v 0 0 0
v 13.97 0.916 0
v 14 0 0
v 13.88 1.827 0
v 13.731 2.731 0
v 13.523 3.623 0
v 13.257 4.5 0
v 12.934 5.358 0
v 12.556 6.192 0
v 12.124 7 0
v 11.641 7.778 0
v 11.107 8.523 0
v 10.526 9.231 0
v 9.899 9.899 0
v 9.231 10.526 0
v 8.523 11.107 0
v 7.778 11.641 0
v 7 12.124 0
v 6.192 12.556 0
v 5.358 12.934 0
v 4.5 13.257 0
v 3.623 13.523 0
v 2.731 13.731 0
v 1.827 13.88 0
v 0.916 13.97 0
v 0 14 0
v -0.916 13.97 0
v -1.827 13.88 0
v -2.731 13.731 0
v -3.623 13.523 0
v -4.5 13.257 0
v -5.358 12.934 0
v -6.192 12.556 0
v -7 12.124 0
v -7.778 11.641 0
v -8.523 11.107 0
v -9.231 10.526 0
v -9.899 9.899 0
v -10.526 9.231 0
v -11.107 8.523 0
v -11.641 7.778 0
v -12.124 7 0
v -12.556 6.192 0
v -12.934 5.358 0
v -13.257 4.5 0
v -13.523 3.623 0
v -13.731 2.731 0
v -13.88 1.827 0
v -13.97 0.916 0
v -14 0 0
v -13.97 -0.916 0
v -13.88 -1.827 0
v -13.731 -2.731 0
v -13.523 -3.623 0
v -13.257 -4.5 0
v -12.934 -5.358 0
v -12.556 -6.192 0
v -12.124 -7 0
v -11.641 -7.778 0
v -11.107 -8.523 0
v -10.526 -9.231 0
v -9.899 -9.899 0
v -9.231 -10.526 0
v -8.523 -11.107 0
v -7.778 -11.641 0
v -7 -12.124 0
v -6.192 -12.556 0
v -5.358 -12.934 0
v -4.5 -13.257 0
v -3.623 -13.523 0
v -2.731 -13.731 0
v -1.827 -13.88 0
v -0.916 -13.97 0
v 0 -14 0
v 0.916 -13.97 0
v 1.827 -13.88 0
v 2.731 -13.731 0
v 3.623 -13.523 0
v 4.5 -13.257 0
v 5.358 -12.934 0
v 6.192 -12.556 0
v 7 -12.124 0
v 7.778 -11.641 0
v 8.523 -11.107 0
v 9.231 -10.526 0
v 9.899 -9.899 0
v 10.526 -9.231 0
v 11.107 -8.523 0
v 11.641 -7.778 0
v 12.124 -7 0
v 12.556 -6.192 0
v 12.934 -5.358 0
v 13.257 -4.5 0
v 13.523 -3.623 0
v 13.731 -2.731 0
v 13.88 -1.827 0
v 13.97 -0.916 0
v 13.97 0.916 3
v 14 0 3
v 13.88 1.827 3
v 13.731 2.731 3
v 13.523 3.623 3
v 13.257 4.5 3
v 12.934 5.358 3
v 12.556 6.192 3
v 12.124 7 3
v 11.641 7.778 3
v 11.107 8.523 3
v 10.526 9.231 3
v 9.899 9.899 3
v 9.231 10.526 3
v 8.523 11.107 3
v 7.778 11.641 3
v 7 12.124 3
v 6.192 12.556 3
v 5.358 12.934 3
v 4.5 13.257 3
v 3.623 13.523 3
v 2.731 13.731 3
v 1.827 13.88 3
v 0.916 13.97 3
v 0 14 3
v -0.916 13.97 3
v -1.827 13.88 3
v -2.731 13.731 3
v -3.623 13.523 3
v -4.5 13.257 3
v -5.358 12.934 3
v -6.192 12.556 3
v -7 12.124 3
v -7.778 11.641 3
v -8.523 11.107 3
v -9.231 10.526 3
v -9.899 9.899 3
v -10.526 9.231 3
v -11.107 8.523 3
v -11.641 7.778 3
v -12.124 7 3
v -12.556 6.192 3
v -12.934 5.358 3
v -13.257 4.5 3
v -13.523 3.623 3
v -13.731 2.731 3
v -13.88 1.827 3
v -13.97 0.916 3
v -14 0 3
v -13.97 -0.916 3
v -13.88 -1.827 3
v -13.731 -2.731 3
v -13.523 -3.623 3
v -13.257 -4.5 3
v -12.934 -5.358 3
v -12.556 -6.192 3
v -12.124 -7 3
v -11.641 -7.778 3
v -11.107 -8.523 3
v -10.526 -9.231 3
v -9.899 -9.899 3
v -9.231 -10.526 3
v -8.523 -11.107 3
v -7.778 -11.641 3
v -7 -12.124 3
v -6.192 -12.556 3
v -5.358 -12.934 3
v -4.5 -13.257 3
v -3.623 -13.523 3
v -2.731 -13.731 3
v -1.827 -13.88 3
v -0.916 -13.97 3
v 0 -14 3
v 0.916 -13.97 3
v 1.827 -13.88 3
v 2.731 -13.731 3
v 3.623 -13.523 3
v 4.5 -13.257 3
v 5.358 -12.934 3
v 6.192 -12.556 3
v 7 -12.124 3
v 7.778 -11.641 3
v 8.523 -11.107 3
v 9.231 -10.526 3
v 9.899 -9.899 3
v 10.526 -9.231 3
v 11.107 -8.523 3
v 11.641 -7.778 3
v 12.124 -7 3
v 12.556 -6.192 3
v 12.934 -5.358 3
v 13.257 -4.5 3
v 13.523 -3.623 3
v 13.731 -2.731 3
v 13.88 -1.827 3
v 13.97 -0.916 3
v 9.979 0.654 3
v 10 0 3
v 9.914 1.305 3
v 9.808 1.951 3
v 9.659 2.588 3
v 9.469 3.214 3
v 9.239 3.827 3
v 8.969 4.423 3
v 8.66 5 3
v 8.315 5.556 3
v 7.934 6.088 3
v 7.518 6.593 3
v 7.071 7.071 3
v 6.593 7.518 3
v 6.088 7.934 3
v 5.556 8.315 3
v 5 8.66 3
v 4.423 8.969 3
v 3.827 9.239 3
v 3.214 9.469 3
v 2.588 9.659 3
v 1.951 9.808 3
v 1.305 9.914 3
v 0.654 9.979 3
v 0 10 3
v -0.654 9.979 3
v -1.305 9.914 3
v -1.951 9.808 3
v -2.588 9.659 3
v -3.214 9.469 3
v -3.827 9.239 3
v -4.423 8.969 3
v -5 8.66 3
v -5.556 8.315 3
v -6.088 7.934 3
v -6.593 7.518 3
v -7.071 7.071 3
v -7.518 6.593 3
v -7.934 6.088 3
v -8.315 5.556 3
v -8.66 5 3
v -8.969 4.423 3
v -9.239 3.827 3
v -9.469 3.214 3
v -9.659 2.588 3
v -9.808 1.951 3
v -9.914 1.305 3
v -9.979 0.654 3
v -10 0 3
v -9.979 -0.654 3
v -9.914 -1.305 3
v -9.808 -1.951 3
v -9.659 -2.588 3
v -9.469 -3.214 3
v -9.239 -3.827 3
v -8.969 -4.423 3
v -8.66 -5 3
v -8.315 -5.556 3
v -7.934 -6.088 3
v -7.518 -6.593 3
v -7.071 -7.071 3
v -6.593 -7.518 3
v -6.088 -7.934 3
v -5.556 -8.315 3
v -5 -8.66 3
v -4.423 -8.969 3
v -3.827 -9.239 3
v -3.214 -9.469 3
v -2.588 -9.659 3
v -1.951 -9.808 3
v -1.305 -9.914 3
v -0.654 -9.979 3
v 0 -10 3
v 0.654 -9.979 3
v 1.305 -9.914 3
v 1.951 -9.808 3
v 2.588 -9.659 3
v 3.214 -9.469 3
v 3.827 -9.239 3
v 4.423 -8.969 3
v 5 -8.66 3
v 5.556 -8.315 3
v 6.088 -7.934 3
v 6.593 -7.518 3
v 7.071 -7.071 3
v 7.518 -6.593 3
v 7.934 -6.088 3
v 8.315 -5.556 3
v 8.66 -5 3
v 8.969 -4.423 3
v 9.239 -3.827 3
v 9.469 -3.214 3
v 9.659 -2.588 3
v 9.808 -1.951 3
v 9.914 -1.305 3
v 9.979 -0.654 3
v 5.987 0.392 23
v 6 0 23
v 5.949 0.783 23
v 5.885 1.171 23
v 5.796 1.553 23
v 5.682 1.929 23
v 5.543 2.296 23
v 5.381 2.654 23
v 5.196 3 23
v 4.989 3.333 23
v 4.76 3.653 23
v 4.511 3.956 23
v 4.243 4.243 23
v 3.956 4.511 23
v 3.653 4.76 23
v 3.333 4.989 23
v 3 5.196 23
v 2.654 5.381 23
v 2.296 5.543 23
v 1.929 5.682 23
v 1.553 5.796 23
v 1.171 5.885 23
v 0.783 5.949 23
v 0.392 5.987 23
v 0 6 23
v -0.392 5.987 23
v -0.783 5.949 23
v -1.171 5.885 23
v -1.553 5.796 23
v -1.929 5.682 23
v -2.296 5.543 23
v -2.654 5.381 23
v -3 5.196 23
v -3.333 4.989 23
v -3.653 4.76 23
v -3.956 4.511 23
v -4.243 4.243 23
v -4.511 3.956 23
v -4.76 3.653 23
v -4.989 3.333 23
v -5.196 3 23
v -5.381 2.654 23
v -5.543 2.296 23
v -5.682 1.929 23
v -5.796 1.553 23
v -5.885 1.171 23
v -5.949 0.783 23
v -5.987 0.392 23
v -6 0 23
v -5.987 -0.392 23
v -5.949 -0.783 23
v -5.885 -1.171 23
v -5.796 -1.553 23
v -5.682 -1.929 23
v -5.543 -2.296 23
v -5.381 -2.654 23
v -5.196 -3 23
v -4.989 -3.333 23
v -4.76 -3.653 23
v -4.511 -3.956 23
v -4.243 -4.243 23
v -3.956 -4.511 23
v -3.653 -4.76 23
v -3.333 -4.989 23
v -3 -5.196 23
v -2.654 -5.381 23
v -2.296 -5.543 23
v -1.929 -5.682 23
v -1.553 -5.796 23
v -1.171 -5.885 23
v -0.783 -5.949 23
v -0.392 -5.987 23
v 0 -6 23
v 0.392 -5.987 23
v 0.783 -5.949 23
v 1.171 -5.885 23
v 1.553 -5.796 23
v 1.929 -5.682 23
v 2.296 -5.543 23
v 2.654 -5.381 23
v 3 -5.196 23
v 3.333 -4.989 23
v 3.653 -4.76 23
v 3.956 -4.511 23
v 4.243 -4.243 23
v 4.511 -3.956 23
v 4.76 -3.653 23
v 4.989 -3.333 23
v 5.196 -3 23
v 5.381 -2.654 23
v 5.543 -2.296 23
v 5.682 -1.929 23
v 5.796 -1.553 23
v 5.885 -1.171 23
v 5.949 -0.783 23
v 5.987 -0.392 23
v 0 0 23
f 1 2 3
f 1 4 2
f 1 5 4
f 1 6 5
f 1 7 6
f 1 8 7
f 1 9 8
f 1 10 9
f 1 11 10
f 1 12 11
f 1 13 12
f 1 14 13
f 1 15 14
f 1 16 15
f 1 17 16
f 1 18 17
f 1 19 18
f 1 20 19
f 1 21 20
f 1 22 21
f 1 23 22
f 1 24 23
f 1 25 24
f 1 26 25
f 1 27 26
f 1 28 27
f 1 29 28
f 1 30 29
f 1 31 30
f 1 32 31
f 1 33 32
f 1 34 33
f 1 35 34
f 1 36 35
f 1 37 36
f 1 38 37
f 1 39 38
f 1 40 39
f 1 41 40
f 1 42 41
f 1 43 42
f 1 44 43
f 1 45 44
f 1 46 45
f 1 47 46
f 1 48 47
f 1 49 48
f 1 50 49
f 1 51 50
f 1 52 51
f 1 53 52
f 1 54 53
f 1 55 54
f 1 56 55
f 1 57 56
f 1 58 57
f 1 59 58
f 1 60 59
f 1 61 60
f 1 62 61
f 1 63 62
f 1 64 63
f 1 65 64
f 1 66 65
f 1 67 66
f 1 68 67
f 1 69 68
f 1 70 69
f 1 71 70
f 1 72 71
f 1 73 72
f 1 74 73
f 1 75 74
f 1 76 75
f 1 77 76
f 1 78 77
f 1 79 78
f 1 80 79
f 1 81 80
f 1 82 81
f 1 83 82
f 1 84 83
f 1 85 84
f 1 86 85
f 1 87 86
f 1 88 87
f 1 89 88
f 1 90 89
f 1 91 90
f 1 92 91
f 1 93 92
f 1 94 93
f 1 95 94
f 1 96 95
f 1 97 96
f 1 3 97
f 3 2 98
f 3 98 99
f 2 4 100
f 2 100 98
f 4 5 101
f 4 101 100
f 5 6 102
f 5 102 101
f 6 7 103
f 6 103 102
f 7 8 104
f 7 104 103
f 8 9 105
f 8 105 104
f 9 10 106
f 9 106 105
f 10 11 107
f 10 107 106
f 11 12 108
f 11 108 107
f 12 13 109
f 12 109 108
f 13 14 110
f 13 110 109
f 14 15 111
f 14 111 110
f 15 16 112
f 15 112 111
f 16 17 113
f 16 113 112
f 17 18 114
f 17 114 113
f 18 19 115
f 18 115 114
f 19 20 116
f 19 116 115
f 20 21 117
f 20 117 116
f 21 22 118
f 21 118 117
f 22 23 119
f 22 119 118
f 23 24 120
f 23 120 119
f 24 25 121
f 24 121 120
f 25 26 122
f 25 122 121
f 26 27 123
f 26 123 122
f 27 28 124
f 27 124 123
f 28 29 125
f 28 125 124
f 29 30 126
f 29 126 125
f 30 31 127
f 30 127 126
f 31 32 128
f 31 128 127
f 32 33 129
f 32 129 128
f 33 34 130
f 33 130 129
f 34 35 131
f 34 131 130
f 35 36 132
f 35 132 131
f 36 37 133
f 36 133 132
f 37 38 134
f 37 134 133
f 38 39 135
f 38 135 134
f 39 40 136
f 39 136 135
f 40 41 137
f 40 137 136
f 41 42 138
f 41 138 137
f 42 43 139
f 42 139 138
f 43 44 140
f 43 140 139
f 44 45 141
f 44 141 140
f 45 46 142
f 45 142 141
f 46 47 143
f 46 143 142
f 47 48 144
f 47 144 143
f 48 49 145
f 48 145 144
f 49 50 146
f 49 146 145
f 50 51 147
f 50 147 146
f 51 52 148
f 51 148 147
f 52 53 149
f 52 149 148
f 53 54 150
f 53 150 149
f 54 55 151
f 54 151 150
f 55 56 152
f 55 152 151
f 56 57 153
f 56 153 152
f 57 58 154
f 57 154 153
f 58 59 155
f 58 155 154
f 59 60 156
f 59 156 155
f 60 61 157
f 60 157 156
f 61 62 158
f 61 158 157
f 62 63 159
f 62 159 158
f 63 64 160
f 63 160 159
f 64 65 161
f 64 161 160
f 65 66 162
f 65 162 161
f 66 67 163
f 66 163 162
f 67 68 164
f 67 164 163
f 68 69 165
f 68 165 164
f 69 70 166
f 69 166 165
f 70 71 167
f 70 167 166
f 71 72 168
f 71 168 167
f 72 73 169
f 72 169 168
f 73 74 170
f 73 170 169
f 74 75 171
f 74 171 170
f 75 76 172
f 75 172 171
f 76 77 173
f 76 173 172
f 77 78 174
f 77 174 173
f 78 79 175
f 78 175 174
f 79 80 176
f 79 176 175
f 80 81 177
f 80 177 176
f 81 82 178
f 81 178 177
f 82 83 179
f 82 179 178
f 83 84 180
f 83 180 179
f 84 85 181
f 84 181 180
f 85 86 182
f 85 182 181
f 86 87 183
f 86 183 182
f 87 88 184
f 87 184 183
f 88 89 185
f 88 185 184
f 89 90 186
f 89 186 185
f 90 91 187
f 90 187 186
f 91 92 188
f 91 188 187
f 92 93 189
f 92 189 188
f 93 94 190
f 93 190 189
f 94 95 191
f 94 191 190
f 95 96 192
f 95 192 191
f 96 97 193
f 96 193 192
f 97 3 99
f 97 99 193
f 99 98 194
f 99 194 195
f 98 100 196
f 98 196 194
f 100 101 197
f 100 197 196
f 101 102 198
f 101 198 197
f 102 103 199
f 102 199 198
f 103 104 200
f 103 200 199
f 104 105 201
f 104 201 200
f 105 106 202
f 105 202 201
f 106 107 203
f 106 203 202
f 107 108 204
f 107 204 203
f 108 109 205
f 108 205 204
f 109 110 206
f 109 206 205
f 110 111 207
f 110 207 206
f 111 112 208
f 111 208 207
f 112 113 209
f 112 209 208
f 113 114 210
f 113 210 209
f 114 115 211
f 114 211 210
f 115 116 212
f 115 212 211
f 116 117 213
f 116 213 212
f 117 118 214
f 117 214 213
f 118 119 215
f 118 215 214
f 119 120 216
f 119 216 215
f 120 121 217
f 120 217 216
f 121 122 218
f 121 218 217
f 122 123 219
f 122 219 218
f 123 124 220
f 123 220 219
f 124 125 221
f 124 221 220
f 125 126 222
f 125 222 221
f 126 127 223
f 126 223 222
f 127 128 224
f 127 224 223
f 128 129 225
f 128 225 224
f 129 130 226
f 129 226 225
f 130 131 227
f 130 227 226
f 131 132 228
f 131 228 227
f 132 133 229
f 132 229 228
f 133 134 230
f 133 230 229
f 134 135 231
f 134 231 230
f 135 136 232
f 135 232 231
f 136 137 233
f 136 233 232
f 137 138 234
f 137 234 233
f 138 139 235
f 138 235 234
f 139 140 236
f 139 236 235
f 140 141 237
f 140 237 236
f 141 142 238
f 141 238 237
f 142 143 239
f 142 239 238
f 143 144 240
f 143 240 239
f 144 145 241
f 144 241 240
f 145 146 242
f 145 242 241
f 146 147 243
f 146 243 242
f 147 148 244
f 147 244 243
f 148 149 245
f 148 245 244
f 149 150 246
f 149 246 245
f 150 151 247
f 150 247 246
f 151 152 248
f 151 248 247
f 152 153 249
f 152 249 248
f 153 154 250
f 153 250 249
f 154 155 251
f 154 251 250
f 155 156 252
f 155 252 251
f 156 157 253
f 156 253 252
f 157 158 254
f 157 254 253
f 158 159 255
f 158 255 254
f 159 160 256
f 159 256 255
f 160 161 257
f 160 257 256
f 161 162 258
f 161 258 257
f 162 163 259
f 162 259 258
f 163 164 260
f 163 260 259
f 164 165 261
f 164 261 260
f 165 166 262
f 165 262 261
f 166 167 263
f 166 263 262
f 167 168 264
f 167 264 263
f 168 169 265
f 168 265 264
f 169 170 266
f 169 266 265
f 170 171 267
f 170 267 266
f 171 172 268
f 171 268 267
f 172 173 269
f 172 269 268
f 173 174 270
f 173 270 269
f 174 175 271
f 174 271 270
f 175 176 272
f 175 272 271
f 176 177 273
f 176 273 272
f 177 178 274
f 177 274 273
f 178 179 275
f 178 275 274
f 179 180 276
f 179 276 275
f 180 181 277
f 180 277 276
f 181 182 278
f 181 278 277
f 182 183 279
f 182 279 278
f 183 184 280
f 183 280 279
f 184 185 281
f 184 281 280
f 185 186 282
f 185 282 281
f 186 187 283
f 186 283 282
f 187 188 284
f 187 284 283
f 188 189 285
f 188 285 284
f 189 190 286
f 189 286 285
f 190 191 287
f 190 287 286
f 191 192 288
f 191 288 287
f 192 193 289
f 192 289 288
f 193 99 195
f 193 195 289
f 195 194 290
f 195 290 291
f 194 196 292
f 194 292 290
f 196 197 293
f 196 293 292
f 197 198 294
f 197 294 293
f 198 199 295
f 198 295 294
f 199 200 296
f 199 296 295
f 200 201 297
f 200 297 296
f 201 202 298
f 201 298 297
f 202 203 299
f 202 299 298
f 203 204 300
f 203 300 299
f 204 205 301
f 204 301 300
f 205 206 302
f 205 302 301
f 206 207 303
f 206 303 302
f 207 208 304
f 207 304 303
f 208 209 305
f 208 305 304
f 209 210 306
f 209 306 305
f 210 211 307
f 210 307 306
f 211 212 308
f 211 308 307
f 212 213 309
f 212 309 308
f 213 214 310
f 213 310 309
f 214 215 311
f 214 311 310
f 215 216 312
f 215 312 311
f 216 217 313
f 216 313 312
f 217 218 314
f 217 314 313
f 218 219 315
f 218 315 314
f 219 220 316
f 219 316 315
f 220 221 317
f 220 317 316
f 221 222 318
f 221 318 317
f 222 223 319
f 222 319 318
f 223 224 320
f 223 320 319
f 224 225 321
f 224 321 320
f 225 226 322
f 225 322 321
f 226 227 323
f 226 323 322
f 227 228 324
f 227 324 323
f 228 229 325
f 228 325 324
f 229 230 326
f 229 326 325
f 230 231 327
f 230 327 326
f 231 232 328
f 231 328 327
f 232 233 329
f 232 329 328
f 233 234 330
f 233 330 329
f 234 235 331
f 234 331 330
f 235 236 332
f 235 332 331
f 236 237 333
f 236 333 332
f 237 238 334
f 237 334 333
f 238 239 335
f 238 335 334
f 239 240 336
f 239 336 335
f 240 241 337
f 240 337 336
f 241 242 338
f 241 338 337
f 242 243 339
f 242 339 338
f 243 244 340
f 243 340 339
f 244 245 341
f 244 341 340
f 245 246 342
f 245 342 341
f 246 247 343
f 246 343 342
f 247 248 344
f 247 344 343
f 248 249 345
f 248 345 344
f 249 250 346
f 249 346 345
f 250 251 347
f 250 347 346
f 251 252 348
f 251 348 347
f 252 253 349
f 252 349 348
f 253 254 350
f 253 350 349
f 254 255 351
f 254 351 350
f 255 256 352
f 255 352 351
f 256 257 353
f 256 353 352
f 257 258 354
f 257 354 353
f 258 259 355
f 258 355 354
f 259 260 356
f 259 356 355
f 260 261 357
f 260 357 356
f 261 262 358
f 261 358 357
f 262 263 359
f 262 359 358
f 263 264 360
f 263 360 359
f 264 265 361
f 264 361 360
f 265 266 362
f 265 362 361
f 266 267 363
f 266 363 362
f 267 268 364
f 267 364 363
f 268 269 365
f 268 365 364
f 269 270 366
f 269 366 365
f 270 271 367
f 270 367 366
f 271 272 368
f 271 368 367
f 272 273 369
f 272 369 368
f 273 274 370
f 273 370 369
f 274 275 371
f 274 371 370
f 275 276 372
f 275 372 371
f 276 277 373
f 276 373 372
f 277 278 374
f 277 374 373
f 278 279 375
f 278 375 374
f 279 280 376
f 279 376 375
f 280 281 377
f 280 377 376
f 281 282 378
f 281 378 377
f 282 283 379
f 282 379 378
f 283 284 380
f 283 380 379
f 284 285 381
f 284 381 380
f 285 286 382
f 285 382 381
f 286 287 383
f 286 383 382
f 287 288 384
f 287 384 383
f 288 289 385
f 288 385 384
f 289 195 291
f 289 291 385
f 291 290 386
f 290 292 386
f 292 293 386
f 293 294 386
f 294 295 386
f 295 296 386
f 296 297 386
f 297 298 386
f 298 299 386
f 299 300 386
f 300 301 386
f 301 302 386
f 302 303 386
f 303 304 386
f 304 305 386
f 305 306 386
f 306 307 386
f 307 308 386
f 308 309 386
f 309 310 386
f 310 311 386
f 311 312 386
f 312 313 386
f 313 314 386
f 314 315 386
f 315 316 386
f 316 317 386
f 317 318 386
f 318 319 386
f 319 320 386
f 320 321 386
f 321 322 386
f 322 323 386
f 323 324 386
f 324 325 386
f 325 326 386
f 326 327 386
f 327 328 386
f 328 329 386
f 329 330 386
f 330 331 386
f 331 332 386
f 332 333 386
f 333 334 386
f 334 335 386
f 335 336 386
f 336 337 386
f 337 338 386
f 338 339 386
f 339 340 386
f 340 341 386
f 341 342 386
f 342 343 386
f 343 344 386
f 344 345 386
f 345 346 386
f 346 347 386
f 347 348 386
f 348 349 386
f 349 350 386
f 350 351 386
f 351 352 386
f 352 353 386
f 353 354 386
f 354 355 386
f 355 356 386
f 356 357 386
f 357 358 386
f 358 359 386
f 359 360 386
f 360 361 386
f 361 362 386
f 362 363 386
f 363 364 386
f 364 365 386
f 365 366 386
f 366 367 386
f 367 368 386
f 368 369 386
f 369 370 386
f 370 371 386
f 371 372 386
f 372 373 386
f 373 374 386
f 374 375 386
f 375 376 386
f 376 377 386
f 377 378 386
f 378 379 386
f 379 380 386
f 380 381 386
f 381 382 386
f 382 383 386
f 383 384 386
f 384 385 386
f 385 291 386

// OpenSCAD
// Original MechIntel educational model. CC0-1.0. Units: mm.
// Not a standardized or load-rated component.
$fn=96;
// Section points: [radius, height], mm. Edit to change the profile.
section=[[0, 0], [14, 0], [14, 3], [10, 3], [6, 23], [0, 23]];
rotate_extrude($fn=96) polygon(points=section);
